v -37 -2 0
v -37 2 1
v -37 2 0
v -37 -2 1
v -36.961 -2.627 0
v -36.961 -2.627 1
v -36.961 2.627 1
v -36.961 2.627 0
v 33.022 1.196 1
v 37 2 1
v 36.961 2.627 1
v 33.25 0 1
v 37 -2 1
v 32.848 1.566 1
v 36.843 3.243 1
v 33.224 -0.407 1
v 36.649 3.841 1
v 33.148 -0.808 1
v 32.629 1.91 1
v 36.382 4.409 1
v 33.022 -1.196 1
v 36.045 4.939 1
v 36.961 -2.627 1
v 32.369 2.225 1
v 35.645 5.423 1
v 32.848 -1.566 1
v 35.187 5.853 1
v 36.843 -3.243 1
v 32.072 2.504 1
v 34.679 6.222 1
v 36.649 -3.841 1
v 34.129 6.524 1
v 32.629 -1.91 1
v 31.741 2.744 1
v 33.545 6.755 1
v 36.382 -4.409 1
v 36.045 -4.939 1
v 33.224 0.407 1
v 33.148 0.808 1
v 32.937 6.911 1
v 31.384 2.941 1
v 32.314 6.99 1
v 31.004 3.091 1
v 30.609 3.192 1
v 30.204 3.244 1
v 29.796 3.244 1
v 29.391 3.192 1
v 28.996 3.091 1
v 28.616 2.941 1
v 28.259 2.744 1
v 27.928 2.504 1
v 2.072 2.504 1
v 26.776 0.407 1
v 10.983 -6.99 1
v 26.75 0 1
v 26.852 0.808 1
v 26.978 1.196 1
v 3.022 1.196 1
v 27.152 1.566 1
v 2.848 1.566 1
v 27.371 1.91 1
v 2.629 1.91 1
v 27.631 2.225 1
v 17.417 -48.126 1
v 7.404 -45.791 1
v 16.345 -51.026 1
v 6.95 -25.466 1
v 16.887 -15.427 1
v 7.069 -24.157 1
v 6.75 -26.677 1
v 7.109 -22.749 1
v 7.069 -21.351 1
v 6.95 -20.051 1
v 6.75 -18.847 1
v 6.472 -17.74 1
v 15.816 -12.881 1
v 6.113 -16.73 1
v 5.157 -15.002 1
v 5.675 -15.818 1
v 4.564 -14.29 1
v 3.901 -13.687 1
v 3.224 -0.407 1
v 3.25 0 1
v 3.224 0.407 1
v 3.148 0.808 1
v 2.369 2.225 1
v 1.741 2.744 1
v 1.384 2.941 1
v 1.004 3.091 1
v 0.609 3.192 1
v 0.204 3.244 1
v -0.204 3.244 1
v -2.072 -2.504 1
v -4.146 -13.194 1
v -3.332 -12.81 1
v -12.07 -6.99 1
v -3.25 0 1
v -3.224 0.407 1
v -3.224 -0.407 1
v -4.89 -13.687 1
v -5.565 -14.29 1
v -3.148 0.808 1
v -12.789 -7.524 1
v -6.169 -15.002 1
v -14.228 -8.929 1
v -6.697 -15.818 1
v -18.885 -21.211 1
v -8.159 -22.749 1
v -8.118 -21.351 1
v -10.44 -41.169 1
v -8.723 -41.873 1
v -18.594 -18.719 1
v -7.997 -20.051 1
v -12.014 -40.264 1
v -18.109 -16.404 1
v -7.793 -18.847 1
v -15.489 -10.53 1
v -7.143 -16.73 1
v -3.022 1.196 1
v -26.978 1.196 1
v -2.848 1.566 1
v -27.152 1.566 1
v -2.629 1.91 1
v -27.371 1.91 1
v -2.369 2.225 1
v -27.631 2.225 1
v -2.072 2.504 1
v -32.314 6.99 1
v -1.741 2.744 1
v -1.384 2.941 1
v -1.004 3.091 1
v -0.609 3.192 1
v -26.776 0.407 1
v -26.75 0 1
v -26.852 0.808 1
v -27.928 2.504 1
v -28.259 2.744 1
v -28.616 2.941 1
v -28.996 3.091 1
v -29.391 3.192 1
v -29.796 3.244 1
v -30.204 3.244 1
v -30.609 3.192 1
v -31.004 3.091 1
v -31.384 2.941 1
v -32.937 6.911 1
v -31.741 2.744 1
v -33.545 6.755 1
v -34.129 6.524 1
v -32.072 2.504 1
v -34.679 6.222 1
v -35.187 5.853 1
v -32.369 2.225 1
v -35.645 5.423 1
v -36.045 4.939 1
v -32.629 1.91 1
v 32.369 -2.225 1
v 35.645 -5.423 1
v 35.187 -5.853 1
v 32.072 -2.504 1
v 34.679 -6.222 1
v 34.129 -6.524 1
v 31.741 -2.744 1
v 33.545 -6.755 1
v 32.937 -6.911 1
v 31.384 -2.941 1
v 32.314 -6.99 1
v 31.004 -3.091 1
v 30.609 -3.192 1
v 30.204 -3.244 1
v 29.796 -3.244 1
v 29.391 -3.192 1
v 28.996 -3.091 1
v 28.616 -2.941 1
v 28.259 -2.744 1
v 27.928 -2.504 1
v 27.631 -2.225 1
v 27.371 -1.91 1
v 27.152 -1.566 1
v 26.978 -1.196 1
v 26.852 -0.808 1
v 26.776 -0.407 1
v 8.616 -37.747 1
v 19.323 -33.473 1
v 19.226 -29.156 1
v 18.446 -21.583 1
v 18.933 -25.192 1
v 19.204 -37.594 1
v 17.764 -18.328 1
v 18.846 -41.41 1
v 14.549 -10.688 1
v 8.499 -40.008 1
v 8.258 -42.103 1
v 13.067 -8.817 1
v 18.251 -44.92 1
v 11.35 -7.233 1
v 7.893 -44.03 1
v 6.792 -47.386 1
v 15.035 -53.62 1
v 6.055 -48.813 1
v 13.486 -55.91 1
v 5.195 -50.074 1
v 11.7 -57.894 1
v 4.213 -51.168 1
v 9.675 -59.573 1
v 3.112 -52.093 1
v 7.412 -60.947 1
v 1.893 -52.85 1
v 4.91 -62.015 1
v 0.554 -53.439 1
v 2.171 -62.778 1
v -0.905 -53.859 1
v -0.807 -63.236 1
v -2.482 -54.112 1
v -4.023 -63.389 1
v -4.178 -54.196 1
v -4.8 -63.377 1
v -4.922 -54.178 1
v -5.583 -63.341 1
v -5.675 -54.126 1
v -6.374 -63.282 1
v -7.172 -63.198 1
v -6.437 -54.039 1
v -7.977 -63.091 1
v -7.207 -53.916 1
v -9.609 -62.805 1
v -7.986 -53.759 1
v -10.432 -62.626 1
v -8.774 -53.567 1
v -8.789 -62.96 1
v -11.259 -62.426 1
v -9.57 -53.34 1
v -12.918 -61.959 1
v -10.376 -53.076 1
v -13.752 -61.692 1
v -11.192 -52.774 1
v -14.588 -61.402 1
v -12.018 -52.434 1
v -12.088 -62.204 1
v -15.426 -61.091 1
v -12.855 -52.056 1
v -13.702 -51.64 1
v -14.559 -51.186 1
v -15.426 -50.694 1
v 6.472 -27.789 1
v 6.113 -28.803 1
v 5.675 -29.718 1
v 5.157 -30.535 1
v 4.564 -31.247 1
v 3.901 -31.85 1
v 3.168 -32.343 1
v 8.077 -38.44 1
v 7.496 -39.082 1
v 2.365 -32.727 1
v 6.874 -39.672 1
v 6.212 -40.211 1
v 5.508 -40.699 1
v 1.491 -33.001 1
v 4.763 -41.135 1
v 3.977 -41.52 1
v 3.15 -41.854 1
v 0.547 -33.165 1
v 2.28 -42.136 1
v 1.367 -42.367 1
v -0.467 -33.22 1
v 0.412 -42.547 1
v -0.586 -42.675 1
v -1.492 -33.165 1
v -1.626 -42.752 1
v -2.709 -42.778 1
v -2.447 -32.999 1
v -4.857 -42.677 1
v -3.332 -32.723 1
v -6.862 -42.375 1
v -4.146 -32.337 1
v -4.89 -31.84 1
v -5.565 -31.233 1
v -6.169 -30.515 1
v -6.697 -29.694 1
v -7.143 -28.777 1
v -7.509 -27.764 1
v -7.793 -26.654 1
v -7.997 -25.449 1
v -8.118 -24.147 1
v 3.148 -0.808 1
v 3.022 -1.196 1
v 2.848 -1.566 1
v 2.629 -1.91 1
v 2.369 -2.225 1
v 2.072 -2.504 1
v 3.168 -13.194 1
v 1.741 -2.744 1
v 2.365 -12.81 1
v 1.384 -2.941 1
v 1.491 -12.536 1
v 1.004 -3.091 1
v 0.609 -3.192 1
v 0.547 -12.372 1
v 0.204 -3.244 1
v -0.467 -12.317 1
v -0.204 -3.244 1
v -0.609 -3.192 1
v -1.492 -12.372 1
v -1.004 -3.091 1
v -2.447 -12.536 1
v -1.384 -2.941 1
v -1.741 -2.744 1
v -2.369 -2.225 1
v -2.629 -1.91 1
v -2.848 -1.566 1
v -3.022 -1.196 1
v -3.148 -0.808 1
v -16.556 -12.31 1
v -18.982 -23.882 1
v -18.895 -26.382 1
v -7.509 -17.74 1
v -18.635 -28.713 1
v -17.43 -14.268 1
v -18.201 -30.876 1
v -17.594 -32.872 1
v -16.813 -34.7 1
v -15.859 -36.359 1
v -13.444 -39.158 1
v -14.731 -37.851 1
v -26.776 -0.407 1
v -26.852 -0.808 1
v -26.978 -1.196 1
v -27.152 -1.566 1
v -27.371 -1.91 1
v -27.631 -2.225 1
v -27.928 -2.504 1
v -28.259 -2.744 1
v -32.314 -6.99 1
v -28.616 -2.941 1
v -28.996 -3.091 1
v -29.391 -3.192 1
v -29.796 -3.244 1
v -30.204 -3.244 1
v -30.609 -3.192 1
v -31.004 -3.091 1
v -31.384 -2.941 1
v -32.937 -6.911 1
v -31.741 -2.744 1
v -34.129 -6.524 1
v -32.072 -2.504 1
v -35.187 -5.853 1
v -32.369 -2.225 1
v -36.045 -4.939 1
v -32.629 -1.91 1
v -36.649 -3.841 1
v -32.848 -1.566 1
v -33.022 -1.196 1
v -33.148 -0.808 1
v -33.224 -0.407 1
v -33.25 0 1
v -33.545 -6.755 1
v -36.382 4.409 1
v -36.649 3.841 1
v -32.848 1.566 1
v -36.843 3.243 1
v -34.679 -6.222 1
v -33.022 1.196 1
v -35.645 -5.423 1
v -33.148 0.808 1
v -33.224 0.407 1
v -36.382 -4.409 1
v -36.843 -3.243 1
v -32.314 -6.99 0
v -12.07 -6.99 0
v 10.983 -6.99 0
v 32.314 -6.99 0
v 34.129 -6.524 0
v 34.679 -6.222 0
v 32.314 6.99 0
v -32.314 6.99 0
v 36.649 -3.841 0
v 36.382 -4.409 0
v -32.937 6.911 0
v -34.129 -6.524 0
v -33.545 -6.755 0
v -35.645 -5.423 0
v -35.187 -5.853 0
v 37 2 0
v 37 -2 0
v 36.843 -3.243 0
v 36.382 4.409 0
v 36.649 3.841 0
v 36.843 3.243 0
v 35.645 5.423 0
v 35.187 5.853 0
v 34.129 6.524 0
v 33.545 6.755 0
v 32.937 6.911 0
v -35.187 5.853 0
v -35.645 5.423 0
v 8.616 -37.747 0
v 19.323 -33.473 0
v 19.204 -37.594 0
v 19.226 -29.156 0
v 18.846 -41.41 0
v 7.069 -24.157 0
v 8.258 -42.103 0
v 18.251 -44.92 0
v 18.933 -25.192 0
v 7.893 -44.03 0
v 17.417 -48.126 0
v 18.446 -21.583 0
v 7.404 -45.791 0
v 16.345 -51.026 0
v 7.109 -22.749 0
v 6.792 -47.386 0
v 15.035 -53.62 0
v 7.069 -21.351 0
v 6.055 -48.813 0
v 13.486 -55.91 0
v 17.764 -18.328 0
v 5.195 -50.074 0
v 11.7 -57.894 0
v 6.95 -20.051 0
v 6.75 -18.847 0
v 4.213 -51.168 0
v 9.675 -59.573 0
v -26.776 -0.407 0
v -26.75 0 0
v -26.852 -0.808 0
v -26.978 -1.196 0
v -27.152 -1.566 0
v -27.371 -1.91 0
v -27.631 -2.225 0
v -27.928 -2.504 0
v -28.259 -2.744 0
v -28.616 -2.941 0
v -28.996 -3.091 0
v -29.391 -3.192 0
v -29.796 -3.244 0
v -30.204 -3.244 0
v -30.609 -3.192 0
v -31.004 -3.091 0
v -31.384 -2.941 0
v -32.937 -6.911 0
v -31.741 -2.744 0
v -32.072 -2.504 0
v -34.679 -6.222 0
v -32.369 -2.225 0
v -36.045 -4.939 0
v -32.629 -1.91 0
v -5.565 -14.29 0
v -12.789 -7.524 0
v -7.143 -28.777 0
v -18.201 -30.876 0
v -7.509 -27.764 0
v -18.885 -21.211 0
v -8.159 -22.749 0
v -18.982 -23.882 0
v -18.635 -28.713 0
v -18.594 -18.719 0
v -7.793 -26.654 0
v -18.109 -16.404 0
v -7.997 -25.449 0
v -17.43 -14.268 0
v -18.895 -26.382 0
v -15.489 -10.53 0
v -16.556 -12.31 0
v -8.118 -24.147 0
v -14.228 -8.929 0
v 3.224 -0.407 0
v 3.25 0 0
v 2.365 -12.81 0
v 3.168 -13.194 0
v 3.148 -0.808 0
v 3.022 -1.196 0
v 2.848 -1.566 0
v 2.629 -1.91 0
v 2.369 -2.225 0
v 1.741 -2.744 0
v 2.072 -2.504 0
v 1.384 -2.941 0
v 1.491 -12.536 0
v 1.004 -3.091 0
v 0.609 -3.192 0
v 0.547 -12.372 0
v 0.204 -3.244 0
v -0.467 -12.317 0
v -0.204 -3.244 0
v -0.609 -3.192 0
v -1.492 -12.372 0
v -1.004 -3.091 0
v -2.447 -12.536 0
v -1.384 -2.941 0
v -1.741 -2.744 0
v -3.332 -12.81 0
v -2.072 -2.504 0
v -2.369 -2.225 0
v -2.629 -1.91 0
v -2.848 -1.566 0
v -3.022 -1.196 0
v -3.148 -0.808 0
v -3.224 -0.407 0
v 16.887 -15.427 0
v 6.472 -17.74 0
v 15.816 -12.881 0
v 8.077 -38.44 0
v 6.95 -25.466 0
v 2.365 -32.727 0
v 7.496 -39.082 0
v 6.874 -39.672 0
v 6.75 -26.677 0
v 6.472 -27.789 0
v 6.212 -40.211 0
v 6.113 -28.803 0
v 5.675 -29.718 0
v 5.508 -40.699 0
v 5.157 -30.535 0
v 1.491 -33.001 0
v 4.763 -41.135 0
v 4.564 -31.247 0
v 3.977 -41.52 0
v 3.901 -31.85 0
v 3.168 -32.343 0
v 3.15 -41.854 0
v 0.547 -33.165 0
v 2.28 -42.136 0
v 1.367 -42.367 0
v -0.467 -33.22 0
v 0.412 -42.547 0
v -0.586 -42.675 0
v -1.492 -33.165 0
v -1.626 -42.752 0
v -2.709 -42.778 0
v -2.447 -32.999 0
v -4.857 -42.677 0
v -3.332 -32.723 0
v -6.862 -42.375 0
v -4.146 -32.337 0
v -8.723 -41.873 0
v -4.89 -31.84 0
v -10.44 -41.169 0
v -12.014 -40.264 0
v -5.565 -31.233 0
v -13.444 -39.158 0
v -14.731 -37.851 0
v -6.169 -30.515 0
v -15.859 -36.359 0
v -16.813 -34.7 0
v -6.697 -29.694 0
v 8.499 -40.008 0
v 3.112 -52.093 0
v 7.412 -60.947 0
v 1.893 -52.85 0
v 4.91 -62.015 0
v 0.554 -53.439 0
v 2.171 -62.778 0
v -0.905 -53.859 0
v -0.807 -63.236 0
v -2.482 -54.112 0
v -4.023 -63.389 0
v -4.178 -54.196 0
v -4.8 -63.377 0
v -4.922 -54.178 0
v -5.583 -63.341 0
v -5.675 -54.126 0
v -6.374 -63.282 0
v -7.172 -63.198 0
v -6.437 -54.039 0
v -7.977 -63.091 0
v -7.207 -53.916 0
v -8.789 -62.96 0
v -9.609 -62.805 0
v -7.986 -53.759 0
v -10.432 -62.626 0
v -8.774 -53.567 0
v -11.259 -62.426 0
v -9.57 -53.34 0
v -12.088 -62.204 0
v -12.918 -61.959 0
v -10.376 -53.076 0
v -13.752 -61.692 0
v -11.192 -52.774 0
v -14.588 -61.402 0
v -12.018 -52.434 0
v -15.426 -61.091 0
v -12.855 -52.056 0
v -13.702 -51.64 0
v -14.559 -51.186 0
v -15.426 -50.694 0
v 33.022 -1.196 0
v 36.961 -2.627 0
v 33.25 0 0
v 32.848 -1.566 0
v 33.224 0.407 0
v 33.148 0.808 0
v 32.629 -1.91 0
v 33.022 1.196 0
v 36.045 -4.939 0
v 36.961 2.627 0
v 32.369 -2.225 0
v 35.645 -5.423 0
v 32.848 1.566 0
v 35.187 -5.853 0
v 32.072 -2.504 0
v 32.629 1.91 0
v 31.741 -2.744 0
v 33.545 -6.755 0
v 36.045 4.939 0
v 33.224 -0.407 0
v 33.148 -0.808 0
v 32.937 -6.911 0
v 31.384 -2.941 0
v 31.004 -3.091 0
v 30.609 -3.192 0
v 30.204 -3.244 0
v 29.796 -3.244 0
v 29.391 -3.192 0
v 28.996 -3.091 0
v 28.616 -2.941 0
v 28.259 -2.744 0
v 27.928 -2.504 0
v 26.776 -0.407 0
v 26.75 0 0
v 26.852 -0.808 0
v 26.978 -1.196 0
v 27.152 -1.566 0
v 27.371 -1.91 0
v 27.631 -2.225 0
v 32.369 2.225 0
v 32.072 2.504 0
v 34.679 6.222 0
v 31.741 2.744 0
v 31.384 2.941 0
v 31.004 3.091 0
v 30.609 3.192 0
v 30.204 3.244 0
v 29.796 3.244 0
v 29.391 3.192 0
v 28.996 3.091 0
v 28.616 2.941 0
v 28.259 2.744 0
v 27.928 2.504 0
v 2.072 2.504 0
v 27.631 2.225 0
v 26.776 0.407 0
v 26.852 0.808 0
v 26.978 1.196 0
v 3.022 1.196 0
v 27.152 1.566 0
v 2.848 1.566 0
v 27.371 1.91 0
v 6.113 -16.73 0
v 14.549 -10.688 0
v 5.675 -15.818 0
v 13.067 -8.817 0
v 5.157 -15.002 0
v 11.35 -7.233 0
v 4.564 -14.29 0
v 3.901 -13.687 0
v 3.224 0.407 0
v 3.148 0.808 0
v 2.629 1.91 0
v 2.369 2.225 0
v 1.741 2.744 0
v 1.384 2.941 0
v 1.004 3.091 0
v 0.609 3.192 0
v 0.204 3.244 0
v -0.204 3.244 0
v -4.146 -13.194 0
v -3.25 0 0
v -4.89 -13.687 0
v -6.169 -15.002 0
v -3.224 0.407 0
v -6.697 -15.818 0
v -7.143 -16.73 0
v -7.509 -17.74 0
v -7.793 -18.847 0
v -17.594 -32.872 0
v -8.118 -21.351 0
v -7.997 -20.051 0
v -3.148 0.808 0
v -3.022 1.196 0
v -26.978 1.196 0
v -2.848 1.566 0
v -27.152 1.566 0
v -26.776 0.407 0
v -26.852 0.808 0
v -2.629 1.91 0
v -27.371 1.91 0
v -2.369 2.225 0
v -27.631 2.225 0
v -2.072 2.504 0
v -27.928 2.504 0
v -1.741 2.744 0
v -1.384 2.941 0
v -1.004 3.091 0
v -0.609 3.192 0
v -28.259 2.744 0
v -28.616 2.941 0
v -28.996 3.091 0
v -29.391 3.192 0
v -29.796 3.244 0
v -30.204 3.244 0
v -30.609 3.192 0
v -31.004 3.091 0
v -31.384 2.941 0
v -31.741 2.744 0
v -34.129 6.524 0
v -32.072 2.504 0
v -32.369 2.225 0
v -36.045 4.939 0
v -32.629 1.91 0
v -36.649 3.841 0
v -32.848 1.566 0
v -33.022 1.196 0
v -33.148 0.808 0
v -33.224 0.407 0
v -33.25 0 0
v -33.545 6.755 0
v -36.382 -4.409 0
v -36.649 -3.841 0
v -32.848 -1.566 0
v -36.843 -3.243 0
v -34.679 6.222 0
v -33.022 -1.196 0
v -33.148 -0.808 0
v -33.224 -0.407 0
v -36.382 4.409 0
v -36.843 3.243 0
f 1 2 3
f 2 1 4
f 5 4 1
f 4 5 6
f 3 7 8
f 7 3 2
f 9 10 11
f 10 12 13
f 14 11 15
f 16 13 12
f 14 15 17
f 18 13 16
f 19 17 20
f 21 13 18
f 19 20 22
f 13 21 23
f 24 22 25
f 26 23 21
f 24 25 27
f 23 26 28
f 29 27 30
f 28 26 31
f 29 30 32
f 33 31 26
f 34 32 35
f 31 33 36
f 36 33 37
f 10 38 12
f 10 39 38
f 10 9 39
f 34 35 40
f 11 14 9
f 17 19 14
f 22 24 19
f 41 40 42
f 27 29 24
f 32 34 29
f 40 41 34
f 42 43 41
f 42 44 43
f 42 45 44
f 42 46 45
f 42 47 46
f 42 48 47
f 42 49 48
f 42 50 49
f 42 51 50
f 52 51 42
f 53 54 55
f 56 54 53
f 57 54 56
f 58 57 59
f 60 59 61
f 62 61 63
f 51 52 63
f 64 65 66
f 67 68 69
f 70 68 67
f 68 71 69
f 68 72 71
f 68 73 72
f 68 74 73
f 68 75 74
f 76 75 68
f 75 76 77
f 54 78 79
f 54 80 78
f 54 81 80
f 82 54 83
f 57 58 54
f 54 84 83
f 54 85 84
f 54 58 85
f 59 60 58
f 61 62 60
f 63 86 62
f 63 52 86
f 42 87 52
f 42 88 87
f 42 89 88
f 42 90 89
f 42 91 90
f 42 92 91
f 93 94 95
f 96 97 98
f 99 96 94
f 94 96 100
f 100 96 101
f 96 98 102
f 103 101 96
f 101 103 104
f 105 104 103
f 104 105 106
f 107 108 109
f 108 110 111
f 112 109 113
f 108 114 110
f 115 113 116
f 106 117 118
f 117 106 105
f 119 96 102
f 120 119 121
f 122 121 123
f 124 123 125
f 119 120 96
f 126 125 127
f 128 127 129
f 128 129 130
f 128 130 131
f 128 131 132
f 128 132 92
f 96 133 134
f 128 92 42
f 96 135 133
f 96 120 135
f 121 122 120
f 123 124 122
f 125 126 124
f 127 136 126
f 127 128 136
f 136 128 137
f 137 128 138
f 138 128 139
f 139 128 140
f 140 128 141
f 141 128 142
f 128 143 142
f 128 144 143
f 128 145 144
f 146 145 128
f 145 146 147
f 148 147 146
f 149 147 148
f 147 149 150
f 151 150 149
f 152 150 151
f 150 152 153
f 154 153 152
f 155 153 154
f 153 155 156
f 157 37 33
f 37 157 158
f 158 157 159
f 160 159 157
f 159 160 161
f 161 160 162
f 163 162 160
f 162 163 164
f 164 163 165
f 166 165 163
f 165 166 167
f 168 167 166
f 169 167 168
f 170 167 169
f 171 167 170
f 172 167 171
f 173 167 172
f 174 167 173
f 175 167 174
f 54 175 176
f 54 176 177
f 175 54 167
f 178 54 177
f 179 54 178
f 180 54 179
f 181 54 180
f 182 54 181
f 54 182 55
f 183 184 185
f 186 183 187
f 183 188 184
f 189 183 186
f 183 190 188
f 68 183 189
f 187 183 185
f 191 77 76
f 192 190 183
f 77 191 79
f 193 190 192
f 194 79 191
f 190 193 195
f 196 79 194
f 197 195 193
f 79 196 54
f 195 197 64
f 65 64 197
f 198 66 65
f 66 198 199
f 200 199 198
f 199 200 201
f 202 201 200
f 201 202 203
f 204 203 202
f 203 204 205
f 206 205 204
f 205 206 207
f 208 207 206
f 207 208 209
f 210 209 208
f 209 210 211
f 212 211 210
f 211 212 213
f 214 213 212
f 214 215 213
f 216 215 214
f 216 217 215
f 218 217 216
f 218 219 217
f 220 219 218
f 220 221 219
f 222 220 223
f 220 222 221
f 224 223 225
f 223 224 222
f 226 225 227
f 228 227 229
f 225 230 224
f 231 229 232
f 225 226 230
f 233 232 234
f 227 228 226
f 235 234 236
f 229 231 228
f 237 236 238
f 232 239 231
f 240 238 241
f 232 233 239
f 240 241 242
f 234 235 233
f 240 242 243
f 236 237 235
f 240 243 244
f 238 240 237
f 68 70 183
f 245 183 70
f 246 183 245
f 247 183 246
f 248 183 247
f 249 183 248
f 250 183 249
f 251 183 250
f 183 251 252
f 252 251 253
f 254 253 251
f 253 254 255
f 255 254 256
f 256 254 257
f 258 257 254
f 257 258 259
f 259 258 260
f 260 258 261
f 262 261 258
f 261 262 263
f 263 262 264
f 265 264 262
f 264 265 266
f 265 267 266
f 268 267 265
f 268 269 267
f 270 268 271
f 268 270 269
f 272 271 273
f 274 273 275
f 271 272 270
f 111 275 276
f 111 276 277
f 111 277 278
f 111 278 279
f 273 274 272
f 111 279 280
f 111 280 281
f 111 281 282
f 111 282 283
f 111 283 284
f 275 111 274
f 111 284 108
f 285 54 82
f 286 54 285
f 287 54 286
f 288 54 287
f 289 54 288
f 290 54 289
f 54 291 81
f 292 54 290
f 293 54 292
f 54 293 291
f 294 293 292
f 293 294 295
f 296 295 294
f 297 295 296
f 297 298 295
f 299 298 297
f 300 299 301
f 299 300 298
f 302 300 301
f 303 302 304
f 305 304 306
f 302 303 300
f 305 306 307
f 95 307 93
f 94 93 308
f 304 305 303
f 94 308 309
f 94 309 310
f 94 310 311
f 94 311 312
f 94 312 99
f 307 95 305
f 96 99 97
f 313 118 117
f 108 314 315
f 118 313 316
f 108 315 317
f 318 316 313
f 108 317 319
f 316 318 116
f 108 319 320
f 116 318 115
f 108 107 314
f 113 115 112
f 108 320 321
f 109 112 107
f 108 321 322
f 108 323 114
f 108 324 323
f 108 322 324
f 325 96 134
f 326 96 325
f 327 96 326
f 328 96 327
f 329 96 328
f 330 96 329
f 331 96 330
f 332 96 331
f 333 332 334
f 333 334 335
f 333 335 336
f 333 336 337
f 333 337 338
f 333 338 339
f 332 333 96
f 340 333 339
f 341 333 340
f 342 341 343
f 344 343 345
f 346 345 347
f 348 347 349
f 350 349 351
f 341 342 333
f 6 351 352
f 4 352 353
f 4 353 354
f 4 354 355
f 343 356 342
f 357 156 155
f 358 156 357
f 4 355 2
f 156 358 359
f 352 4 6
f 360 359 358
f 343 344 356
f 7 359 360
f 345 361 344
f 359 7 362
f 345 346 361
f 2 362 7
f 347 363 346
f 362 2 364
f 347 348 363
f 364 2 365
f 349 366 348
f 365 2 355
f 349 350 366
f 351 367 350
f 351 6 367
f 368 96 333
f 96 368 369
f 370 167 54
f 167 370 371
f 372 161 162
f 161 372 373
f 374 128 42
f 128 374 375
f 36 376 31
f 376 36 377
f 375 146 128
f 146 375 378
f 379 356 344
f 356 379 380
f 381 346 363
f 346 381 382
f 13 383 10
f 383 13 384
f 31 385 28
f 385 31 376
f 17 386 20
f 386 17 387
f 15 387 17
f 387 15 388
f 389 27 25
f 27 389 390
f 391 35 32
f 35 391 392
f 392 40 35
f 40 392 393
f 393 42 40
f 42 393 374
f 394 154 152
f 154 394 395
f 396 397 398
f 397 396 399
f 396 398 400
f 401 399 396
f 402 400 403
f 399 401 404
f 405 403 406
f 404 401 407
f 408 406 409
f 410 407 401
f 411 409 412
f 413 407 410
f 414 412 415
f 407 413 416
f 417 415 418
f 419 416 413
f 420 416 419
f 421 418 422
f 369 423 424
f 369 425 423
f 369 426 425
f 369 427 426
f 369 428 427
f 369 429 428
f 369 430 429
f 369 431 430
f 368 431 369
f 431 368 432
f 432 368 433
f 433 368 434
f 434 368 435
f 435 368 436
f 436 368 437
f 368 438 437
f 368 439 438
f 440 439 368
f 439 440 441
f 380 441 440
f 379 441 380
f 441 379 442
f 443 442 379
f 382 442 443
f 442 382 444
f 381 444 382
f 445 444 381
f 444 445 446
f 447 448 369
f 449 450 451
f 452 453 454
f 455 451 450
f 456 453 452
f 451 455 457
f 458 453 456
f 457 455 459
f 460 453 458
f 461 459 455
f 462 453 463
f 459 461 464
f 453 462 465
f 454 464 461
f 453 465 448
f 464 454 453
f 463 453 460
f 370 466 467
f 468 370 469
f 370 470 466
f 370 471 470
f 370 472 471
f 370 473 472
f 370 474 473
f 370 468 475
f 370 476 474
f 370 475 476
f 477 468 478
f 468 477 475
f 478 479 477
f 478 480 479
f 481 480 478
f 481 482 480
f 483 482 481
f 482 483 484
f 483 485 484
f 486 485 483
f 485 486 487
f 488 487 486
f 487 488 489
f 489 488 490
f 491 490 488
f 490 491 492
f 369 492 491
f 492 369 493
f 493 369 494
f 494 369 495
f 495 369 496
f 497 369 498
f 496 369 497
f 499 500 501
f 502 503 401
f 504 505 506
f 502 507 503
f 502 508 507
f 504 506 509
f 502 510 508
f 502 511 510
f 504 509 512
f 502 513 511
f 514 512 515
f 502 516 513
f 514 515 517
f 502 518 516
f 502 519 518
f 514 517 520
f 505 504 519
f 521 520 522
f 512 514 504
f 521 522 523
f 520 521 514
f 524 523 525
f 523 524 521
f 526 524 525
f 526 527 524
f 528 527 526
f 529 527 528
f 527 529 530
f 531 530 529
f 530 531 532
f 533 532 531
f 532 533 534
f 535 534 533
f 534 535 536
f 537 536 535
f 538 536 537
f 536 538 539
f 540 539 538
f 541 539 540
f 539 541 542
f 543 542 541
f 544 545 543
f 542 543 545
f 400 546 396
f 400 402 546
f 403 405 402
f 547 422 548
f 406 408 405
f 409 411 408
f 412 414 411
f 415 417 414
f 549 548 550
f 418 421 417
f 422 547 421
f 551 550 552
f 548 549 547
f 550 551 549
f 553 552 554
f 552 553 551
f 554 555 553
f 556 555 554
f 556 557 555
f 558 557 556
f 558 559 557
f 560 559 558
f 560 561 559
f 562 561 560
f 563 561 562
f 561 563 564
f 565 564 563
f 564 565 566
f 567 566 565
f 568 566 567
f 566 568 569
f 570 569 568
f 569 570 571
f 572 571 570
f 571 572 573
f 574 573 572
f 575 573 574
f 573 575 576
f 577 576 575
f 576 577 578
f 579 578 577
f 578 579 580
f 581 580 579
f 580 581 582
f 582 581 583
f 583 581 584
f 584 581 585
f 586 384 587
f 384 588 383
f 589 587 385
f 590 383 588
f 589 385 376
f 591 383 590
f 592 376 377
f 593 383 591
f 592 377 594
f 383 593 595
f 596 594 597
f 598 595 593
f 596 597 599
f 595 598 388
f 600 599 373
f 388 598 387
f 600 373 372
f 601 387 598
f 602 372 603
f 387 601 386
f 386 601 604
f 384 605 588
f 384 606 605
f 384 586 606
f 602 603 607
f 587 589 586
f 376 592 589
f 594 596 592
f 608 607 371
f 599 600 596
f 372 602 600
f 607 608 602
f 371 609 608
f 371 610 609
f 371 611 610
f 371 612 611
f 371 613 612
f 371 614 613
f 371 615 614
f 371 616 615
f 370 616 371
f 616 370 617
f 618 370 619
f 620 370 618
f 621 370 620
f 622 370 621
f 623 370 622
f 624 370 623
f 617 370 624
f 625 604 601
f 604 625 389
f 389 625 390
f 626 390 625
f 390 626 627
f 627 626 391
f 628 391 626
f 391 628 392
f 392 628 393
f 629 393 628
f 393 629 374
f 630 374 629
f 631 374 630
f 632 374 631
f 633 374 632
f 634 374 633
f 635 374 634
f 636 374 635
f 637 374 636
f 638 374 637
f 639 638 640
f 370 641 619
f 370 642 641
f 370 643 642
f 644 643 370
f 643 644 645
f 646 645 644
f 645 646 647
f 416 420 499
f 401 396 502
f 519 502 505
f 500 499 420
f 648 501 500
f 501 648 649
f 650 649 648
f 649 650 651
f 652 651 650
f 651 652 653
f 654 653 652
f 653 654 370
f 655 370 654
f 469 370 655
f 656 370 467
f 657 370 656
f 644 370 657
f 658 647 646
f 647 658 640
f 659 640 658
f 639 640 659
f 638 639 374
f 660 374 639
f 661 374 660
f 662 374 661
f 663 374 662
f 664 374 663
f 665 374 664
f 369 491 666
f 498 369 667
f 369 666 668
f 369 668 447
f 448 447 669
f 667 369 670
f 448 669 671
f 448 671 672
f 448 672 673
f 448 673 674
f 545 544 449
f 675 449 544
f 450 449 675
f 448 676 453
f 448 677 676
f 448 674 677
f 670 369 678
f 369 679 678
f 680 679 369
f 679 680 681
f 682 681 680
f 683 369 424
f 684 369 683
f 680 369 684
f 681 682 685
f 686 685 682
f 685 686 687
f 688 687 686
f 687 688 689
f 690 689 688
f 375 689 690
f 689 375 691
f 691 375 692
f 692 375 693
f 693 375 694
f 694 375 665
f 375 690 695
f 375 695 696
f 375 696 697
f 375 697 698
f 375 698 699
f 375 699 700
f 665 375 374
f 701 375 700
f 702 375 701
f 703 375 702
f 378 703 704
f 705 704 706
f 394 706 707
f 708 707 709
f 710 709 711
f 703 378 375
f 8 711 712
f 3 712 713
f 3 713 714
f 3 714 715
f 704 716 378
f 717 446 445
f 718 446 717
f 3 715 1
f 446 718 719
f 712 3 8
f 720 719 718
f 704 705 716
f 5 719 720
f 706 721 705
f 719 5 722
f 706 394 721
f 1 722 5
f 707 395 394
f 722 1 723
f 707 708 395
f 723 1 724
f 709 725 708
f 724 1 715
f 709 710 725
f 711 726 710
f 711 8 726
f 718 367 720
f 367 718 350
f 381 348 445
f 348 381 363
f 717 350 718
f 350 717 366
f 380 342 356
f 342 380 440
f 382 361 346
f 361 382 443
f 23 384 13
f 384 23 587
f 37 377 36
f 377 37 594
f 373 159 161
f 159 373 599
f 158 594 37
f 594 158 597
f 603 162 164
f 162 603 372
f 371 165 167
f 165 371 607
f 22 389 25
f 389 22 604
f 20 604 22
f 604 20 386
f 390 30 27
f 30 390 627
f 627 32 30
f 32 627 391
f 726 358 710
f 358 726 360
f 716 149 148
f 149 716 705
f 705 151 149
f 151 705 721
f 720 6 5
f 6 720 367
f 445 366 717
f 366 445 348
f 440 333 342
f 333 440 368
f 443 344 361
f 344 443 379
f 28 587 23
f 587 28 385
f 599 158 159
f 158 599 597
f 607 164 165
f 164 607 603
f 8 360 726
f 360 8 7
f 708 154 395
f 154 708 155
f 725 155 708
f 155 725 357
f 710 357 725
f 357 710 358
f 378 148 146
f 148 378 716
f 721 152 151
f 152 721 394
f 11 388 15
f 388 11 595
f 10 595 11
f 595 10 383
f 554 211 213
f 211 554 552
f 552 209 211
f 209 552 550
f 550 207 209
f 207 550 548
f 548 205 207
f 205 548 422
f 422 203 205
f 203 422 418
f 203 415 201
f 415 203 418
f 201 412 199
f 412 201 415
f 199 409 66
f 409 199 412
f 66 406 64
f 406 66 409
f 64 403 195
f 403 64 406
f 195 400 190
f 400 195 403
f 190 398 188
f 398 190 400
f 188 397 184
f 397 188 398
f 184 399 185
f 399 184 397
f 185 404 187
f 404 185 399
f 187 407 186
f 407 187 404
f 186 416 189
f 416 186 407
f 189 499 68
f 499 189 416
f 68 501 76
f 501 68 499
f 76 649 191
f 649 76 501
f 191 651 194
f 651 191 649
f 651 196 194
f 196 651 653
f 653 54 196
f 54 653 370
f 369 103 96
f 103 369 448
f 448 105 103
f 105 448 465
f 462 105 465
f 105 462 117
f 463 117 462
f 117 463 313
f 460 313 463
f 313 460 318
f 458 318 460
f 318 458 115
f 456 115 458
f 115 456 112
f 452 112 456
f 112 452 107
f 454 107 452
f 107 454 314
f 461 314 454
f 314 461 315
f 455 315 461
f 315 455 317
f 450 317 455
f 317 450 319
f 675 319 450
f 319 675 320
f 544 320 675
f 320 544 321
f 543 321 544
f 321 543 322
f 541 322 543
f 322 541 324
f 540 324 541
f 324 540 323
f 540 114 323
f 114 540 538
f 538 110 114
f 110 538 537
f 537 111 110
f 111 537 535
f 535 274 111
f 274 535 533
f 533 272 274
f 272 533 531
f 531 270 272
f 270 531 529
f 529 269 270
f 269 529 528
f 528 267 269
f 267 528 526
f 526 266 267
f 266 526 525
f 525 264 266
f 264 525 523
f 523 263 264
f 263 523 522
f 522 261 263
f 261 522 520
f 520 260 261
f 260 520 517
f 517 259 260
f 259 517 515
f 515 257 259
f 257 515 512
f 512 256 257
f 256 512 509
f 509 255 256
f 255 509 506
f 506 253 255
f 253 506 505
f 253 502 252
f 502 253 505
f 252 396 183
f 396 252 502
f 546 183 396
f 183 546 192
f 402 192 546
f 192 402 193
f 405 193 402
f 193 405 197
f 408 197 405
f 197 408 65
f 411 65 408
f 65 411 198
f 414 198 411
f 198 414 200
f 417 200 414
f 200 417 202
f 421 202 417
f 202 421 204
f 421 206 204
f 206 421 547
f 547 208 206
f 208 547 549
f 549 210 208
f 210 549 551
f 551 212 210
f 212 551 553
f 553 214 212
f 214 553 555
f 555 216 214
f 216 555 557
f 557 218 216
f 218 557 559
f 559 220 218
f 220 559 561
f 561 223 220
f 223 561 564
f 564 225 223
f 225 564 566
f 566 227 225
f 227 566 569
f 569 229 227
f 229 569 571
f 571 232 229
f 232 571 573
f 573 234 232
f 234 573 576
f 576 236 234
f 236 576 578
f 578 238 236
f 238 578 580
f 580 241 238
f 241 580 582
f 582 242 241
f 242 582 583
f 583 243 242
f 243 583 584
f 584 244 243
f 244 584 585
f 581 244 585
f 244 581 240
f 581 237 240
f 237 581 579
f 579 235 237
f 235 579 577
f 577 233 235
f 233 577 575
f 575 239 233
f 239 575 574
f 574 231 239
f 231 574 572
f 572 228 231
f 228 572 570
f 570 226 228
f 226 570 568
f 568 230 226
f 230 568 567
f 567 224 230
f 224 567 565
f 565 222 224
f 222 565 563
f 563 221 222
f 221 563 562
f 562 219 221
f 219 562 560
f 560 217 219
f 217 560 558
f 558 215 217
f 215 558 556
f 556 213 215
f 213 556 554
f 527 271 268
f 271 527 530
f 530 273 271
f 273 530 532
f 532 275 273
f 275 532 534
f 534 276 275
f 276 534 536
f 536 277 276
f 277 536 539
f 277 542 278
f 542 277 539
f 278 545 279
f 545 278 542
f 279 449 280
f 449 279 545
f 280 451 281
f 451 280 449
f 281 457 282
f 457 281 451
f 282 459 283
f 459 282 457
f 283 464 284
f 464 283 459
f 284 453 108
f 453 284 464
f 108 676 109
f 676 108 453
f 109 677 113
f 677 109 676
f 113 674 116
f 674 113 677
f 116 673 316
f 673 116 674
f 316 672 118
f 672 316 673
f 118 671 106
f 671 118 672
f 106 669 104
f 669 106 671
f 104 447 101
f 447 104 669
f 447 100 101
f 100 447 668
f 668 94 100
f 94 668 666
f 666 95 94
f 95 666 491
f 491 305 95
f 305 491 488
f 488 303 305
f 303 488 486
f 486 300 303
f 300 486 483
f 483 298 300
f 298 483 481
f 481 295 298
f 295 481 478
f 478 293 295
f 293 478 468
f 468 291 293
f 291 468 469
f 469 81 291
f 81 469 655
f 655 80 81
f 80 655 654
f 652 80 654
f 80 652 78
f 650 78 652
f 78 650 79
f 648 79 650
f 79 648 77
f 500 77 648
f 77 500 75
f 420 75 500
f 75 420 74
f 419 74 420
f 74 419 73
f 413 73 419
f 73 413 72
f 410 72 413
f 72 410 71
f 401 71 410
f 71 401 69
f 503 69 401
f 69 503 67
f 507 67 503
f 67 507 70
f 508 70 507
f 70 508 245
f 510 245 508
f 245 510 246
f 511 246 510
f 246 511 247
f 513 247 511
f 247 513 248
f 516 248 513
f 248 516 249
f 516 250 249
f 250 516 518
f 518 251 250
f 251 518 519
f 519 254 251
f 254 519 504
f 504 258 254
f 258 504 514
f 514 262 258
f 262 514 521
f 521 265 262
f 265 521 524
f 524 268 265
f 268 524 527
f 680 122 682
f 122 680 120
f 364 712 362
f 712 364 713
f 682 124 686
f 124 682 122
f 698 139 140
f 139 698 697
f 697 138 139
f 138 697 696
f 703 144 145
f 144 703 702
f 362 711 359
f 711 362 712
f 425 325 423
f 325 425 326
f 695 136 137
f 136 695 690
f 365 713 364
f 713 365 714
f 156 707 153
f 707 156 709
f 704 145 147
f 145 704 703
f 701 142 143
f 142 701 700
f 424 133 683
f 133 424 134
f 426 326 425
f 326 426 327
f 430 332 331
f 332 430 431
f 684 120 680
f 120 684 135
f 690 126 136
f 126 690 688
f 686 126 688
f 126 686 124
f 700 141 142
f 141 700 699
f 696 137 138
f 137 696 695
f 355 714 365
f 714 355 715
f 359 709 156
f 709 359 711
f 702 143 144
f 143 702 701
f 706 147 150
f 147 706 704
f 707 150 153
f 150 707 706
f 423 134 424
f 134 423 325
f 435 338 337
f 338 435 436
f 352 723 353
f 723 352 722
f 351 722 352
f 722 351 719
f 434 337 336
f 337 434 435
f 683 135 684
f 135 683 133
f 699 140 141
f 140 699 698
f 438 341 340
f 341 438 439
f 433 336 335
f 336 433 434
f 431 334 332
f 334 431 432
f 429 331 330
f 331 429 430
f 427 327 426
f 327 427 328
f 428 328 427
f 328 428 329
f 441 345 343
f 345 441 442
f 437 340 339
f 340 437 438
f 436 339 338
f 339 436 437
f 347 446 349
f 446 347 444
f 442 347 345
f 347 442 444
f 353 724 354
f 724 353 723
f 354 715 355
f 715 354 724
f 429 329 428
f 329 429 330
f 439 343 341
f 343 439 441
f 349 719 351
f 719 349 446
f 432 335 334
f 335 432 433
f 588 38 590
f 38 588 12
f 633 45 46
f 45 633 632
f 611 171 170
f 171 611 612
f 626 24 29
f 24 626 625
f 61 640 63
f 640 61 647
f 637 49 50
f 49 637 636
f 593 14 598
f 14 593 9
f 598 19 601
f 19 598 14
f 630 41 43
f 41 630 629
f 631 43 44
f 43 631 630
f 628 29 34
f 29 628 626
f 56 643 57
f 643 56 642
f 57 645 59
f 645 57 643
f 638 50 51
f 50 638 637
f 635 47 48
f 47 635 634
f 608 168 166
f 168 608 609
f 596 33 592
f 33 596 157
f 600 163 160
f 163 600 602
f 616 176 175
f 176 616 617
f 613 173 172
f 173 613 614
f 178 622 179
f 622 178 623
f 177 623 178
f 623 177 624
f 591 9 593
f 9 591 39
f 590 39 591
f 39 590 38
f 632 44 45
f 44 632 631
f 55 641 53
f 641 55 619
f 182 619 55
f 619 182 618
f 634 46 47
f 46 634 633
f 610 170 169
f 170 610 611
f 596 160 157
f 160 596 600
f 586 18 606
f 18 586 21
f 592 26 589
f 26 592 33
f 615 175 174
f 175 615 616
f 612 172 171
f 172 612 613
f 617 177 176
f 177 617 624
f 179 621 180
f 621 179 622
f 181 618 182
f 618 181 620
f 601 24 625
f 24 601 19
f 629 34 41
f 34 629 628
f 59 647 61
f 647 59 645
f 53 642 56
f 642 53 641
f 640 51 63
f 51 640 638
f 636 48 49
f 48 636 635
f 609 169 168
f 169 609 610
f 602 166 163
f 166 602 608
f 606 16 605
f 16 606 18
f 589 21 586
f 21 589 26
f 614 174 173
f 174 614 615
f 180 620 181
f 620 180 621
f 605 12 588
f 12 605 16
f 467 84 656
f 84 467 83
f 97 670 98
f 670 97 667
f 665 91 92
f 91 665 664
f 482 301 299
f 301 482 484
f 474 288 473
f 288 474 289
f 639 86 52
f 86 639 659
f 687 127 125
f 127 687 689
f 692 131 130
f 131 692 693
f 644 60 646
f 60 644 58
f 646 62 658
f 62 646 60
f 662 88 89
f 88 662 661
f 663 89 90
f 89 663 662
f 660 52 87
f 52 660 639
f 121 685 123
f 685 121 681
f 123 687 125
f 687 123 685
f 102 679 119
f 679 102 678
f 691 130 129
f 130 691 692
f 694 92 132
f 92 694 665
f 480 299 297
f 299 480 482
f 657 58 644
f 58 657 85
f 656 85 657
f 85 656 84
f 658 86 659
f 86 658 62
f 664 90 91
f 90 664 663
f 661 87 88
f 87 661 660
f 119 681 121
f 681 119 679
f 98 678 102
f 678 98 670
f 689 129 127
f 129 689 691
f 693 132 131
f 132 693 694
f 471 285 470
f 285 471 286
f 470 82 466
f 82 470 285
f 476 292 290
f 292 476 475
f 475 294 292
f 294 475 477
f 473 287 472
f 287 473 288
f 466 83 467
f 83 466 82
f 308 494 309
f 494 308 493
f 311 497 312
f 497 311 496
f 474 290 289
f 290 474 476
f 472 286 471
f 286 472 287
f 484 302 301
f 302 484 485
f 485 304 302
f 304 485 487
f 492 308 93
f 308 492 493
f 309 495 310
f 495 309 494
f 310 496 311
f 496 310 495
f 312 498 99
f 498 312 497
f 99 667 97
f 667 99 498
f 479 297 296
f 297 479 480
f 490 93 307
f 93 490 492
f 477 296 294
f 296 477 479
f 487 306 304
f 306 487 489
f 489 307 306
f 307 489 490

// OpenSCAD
$fn = 50;


difference() {
	union() {
		translate(v = [0, 0, 0]) {
			rotate(a = [0, 0, 0]) {
				hull() {
					translate(v = [-32.0000000000, 2.0000000000, 0]) {
						rotate(a = [0, 0, 0]) {
							translate(v = [0, 0, 0]) {
								rotate(a = [0, 0, 0]) {
									cylinder(h = 1, r = 5);
								}
							}
						}
					}
					translate(v = [32.0000000000, 2.0000000000, 0]) {
						rotate(a = [0, 0, 0]) {
							translate(v = [0, 0, 0]) {
								rotate(a = [0, 0, 0]) {
									cylinder(h = 1, r = 5);
								}
							}
						}
					}
					translate(v = [-32.0000000000, -2.0000000000, 0]) {
						rotate(a = [0, 0, 0]) {
							translate(v = [0, 0, 0]) {
								rotate(a = [0, 0, 0]) {
									cylinder(h = 1, r = 5);
								}
							}
						}
					}
					translate(v = [32.0000000000, -2.0000000000, 0]) {
						rotate(a = [0, 0, 0]) {
							translate(v = [0, 0, 0]) {
								rotate(a = [0, 0, 0]) {
									cylinder(h = 1, r = 5);
								}
							}
						}
					}
				}
			}
		}
		translate(v = [0, -5, 0]) {
			rotate(a = [0, 0, 0]) {
				linear_extrude(height = 1) {
					text(font = "DejaVu Sans Mono:style=Bold", halign = "center", size = 57.0000000000, text = "9", valign = "top");
				}
			}
		}
	}
	union() {
		translate(v = [-30.0000000000, 0.0000000000, -125.0000000000]) {
			rotate(a = [0, 0, 0]) {
				cylinder(h = 250, r = 3.2500000000);
			}
		}
		translate(v = [30.0000000000, 0.0000000000, -125.0000000000]) {
			rotate(a = [0, 0, 0]) {
				cylinder(h = 250, r = 3.2500000000);
			}
		}
		translate(v = [30.0000000000, 0.0000000000, -125.0000000000]) {
			rotate(a = [0, 0, 0]) {
				cylinder(h = 250, r = 3.2500000000);
			}
		}
		translate(v = [0, 0, -125.0000000000]) {
			rotate(a = [0, 0, 0]) {
				cylinder(h = 250, r = 3.2500000000);
			}
		}
	}
}
